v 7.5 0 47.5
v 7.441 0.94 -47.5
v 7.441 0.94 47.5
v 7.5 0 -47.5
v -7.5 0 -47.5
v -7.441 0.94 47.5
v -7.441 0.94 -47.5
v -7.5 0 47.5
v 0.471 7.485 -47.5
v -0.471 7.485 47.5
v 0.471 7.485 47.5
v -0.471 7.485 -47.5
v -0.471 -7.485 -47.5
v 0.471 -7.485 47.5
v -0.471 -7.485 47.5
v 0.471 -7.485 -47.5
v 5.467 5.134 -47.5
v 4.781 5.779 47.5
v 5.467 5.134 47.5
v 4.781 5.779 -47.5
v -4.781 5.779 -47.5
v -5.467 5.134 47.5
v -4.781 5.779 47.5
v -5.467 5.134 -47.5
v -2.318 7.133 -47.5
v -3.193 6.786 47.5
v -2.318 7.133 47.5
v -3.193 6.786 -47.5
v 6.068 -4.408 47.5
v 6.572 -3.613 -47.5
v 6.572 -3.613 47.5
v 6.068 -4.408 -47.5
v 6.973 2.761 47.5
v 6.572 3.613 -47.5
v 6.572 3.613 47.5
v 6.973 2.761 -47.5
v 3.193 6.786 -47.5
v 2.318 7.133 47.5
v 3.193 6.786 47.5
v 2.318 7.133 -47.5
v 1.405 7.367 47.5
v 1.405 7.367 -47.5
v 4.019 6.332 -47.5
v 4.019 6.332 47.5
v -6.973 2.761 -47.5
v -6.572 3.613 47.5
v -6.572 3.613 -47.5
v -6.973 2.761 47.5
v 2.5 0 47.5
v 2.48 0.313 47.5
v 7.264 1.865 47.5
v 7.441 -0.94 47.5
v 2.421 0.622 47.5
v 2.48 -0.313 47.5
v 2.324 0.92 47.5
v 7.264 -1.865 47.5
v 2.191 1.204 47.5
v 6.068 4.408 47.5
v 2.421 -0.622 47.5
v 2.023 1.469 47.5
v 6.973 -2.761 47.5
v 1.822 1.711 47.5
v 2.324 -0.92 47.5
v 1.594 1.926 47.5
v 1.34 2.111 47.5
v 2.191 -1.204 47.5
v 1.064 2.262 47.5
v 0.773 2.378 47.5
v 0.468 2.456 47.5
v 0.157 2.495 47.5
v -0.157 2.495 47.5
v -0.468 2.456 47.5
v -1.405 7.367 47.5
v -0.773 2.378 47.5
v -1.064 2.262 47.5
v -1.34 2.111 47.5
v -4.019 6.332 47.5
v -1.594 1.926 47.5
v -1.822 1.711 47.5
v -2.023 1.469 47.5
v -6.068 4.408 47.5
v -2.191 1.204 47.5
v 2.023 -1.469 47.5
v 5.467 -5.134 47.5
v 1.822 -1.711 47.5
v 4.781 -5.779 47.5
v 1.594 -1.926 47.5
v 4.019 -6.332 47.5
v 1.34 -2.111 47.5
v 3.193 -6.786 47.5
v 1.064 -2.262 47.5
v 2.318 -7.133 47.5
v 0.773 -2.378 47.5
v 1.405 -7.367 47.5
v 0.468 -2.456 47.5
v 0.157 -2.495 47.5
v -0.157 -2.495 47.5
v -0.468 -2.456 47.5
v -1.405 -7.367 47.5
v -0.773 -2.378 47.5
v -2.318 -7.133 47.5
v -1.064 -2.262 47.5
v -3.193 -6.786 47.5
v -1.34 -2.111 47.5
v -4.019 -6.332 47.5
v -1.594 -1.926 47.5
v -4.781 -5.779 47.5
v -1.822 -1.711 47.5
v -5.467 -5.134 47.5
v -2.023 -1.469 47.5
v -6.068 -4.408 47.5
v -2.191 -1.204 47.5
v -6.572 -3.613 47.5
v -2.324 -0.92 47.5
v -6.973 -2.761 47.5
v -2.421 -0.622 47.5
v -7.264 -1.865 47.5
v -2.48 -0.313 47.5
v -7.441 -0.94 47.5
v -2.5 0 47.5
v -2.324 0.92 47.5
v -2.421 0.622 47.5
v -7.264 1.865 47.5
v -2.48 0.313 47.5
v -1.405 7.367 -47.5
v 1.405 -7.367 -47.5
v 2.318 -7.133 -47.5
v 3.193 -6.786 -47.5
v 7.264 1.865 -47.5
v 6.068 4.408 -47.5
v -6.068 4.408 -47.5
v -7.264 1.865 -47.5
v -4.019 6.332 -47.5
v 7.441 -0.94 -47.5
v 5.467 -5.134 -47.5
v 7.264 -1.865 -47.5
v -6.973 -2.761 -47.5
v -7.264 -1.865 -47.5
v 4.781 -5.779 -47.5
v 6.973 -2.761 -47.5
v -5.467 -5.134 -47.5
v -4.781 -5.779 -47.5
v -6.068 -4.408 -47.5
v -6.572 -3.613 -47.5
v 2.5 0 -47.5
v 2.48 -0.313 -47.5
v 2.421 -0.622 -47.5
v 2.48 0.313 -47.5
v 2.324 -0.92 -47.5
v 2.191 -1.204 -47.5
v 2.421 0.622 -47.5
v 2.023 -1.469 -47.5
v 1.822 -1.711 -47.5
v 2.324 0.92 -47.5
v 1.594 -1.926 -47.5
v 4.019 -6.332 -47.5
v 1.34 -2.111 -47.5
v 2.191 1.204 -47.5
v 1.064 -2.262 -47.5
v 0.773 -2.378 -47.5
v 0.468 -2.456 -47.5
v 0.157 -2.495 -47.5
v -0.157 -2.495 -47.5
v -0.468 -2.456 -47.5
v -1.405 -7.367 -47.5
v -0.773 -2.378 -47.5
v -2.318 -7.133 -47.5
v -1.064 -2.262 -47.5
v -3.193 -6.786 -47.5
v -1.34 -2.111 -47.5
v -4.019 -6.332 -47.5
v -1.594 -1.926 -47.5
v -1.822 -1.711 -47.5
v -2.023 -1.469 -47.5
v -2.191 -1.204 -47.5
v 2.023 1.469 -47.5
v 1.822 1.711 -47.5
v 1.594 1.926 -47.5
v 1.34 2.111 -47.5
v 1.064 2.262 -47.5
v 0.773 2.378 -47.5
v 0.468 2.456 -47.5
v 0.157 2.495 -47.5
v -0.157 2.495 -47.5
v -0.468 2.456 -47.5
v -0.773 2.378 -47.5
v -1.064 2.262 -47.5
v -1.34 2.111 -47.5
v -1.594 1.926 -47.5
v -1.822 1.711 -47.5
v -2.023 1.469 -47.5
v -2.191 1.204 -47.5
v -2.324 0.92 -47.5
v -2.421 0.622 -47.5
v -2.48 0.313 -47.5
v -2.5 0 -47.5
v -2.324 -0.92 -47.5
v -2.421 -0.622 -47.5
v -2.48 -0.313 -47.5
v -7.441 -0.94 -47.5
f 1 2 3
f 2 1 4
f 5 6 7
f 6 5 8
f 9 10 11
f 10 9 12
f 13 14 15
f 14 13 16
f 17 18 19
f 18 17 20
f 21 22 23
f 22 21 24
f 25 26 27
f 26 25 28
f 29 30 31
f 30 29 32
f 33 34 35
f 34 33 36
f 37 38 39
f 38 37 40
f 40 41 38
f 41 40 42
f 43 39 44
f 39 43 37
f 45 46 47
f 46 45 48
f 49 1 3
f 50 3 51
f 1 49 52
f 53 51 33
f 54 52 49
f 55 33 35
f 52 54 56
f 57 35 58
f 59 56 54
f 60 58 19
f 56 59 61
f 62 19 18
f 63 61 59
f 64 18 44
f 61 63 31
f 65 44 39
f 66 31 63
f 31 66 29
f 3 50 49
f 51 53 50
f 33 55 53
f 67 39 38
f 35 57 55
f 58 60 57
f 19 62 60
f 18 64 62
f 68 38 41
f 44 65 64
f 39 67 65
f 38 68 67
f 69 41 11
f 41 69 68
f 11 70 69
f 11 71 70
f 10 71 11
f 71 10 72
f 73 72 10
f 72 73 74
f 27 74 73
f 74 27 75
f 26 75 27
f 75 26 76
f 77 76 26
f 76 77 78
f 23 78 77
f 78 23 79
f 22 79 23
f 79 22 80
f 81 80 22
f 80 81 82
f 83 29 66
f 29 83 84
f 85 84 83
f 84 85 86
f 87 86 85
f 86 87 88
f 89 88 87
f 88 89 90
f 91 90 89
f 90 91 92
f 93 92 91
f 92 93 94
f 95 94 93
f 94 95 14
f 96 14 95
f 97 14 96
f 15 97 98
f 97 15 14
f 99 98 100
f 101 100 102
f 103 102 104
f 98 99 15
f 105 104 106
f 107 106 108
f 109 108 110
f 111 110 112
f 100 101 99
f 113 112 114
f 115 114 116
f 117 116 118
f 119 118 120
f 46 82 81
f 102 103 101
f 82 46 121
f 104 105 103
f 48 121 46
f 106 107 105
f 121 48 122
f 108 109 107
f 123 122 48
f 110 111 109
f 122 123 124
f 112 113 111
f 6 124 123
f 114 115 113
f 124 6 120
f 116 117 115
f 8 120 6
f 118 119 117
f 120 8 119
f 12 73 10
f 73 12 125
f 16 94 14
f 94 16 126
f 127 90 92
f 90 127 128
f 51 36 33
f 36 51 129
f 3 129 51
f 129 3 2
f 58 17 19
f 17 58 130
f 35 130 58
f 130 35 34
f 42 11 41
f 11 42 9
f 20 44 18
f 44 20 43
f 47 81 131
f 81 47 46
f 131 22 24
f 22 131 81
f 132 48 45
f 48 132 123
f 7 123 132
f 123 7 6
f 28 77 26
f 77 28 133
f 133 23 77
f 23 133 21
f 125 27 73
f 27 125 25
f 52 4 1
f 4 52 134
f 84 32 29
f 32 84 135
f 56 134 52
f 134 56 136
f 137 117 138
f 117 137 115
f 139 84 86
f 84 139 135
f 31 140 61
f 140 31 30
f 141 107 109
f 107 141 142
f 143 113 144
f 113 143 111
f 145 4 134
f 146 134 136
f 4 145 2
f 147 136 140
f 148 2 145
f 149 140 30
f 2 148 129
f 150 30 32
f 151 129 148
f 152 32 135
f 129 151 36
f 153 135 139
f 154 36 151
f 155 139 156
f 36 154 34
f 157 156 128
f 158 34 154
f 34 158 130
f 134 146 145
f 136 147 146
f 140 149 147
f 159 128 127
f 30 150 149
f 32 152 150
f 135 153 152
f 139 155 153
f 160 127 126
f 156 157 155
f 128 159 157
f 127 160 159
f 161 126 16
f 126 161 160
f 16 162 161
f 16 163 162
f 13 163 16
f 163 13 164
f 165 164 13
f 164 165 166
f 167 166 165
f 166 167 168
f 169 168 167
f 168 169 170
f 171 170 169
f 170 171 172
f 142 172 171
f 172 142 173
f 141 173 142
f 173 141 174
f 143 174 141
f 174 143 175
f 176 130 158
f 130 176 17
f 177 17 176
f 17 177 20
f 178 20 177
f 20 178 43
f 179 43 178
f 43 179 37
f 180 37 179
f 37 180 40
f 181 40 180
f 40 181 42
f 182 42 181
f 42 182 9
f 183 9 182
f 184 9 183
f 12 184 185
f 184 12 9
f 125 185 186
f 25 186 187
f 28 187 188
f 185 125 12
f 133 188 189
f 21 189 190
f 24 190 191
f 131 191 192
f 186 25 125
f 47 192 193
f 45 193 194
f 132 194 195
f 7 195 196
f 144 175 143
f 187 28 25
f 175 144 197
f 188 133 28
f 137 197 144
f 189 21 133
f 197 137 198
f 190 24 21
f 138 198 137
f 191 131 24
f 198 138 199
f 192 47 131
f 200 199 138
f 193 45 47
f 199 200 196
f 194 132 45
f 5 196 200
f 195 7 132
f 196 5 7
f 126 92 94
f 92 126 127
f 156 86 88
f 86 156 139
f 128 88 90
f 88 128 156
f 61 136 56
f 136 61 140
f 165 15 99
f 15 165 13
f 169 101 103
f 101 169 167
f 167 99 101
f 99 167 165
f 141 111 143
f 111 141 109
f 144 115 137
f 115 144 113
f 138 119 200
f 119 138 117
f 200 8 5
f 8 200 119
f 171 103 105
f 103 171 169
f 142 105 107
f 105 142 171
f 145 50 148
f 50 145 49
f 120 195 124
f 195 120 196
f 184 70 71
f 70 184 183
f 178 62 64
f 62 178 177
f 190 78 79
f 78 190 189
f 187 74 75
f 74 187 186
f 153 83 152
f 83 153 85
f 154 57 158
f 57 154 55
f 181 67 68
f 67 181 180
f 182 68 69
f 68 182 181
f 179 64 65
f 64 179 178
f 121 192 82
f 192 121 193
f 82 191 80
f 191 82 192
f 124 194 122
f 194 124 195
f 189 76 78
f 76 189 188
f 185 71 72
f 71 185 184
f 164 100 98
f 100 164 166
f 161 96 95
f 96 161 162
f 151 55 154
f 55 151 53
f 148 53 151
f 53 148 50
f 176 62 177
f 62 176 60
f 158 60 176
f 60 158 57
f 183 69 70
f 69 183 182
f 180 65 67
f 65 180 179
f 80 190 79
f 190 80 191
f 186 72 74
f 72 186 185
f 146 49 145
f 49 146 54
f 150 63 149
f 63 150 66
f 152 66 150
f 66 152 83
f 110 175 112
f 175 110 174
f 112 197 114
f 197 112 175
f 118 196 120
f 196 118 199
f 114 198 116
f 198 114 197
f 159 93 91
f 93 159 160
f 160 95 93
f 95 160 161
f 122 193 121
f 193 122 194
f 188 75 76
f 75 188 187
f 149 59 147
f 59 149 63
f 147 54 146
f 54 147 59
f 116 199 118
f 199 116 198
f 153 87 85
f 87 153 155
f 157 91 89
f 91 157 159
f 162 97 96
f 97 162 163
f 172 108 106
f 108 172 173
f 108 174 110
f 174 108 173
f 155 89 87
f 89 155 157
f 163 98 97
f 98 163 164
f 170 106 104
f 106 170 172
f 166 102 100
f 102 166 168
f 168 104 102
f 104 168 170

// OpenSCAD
$fn = 50;


difference() {
	union() {
		translate(v = [0, 0, -47.5000000000]) {
			cylinder(h = 95, r = 7.5000000000);
		}
	}
	union() {
		translate(v = [0, 0, -100.0000000000]) {
			cylinder(h = 200, r = 2.5000000000);
		}
	}
}
